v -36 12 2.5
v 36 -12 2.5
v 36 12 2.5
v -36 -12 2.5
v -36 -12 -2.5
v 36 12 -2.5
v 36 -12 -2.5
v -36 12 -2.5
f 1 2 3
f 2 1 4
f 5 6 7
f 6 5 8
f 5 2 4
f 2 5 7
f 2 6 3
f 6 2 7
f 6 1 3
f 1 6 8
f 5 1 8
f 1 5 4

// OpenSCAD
// 72 mm long, 24 mm wide, 5 mm high rectangular solid box
// Centered at origin (0,0,0)

// Main box body
cube([72, 24, 5], center = true);
